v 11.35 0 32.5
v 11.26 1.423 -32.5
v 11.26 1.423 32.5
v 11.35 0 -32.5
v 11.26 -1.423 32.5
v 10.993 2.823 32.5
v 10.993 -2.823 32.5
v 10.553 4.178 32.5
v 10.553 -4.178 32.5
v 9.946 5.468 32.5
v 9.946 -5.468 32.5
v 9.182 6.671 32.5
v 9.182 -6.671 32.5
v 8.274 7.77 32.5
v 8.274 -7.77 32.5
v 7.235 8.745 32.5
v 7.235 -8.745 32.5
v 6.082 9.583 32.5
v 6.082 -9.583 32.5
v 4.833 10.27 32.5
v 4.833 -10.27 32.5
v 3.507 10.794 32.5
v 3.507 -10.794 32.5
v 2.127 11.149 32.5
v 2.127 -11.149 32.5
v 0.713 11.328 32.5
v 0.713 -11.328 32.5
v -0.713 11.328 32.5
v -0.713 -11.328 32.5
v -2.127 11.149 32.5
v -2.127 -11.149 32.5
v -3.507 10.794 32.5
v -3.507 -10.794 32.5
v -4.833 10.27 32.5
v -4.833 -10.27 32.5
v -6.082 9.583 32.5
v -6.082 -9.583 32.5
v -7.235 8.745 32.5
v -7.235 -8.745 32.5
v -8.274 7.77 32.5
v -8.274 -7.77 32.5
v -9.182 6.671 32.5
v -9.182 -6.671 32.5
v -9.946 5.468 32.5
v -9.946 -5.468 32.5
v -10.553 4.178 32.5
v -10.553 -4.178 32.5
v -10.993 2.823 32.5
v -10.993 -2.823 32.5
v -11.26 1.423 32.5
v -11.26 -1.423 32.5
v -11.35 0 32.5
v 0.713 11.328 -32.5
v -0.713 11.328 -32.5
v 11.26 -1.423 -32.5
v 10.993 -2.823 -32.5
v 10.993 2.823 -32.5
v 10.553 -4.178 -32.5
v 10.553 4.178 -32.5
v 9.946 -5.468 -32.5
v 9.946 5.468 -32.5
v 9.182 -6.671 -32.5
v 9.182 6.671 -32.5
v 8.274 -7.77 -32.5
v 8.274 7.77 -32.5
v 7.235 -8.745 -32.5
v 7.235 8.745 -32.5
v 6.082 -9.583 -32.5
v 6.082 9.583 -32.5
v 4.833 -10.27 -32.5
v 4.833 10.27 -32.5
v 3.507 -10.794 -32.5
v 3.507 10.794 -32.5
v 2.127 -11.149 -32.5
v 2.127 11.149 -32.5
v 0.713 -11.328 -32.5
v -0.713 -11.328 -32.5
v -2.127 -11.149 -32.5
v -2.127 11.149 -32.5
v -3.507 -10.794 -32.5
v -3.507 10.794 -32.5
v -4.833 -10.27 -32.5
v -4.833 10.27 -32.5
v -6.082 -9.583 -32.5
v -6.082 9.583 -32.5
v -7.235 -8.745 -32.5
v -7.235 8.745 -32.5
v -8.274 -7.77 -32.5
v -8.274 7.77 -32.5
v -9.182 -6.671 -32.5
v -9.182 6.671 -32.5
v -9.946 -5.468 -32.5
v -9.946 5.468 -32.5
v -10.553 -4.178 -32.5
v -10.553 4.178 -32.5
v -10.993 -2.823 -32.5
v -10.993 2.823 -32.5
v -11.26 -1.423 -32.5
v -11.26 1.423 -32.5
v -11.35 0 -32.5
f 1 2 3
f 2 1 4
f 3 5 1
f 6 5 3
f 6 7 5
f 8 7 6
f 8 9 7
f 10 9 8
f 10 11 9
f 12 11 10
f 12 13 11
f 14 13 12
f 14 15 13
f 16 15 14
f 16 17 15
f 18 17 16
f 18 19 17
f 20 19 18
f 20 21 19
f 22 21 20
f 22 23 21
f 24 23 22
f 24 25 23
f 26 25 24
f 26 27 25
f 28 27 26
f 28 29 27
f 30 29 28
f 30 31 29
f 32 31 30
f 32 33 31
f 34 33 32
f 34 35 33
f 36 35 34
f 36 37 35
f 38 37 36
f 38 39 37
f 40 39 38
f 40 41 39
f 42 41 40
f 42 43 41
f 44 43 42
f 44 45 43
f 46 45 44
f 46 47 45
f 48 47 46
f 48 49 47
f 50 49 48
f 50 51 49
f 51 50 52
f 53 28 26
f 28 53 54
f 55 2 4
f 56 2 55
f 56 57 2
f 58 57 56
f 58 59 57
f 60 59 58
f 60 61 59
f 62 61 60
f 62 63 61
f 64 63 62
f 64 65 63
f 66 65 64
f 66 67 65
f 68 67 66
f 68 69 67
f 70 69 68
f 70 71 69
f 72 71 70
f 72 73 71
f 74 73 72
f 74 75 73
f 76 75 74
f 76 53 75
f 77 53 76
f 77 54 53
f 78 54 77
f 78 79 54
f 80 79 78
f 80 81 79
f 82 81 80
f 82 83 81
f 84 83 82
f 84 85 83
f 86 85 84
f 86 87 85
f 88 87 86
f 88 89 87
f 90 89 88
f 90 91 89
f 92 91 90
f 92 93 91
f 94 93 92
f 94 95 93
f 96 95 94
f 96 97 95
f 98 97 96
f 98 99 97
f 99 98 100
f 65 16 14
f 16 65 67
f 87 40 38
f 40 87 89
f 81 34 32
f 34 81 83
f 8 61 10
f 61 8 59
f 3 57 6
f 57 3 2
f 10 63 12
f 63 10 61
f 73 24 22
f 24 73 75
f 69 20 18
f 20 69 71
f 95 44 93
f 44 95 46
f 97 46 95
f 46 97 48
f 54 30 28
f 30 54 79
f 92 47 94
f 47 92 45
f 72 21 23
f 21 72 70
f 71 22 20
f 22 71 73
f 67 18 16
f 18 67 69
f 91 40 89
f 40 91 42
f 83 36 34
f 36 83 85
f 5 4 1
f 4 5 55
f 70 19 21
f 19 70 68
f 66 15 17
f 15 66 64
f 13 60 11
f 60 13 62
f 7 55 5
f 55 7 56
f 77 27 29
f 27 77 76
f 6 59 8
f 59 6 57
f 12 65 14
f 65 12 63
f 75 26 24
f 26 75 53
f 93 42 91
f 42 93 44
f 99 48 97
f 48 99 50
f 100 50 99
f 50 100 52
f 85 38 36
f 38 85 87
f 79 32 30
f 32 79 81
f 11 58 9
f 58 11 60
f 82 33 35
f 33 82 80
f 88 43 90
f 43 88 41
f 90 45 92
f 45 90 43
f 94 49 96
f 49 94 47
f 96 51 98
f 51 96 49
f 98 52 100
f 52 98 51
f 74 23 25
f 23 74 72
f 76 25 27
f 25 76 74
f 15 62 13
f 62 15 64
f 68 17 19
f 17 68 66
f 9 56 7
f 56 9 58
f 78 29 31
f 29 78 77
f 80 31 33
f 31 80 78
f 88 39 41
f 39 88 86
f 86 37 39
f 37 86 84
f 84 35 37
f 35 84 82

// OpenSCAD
$fn = 50;


difference() {
	union() {
		translate(v = [0, 0, -32.5000000000]) {
			cylinder(h = 65, r = 11.3500000000);
		}
	}
	union() {
		translate(v = [0, 0, -100.0000000000]) {
			cylinder(h = 200, r = 0);
		}
	}
}
